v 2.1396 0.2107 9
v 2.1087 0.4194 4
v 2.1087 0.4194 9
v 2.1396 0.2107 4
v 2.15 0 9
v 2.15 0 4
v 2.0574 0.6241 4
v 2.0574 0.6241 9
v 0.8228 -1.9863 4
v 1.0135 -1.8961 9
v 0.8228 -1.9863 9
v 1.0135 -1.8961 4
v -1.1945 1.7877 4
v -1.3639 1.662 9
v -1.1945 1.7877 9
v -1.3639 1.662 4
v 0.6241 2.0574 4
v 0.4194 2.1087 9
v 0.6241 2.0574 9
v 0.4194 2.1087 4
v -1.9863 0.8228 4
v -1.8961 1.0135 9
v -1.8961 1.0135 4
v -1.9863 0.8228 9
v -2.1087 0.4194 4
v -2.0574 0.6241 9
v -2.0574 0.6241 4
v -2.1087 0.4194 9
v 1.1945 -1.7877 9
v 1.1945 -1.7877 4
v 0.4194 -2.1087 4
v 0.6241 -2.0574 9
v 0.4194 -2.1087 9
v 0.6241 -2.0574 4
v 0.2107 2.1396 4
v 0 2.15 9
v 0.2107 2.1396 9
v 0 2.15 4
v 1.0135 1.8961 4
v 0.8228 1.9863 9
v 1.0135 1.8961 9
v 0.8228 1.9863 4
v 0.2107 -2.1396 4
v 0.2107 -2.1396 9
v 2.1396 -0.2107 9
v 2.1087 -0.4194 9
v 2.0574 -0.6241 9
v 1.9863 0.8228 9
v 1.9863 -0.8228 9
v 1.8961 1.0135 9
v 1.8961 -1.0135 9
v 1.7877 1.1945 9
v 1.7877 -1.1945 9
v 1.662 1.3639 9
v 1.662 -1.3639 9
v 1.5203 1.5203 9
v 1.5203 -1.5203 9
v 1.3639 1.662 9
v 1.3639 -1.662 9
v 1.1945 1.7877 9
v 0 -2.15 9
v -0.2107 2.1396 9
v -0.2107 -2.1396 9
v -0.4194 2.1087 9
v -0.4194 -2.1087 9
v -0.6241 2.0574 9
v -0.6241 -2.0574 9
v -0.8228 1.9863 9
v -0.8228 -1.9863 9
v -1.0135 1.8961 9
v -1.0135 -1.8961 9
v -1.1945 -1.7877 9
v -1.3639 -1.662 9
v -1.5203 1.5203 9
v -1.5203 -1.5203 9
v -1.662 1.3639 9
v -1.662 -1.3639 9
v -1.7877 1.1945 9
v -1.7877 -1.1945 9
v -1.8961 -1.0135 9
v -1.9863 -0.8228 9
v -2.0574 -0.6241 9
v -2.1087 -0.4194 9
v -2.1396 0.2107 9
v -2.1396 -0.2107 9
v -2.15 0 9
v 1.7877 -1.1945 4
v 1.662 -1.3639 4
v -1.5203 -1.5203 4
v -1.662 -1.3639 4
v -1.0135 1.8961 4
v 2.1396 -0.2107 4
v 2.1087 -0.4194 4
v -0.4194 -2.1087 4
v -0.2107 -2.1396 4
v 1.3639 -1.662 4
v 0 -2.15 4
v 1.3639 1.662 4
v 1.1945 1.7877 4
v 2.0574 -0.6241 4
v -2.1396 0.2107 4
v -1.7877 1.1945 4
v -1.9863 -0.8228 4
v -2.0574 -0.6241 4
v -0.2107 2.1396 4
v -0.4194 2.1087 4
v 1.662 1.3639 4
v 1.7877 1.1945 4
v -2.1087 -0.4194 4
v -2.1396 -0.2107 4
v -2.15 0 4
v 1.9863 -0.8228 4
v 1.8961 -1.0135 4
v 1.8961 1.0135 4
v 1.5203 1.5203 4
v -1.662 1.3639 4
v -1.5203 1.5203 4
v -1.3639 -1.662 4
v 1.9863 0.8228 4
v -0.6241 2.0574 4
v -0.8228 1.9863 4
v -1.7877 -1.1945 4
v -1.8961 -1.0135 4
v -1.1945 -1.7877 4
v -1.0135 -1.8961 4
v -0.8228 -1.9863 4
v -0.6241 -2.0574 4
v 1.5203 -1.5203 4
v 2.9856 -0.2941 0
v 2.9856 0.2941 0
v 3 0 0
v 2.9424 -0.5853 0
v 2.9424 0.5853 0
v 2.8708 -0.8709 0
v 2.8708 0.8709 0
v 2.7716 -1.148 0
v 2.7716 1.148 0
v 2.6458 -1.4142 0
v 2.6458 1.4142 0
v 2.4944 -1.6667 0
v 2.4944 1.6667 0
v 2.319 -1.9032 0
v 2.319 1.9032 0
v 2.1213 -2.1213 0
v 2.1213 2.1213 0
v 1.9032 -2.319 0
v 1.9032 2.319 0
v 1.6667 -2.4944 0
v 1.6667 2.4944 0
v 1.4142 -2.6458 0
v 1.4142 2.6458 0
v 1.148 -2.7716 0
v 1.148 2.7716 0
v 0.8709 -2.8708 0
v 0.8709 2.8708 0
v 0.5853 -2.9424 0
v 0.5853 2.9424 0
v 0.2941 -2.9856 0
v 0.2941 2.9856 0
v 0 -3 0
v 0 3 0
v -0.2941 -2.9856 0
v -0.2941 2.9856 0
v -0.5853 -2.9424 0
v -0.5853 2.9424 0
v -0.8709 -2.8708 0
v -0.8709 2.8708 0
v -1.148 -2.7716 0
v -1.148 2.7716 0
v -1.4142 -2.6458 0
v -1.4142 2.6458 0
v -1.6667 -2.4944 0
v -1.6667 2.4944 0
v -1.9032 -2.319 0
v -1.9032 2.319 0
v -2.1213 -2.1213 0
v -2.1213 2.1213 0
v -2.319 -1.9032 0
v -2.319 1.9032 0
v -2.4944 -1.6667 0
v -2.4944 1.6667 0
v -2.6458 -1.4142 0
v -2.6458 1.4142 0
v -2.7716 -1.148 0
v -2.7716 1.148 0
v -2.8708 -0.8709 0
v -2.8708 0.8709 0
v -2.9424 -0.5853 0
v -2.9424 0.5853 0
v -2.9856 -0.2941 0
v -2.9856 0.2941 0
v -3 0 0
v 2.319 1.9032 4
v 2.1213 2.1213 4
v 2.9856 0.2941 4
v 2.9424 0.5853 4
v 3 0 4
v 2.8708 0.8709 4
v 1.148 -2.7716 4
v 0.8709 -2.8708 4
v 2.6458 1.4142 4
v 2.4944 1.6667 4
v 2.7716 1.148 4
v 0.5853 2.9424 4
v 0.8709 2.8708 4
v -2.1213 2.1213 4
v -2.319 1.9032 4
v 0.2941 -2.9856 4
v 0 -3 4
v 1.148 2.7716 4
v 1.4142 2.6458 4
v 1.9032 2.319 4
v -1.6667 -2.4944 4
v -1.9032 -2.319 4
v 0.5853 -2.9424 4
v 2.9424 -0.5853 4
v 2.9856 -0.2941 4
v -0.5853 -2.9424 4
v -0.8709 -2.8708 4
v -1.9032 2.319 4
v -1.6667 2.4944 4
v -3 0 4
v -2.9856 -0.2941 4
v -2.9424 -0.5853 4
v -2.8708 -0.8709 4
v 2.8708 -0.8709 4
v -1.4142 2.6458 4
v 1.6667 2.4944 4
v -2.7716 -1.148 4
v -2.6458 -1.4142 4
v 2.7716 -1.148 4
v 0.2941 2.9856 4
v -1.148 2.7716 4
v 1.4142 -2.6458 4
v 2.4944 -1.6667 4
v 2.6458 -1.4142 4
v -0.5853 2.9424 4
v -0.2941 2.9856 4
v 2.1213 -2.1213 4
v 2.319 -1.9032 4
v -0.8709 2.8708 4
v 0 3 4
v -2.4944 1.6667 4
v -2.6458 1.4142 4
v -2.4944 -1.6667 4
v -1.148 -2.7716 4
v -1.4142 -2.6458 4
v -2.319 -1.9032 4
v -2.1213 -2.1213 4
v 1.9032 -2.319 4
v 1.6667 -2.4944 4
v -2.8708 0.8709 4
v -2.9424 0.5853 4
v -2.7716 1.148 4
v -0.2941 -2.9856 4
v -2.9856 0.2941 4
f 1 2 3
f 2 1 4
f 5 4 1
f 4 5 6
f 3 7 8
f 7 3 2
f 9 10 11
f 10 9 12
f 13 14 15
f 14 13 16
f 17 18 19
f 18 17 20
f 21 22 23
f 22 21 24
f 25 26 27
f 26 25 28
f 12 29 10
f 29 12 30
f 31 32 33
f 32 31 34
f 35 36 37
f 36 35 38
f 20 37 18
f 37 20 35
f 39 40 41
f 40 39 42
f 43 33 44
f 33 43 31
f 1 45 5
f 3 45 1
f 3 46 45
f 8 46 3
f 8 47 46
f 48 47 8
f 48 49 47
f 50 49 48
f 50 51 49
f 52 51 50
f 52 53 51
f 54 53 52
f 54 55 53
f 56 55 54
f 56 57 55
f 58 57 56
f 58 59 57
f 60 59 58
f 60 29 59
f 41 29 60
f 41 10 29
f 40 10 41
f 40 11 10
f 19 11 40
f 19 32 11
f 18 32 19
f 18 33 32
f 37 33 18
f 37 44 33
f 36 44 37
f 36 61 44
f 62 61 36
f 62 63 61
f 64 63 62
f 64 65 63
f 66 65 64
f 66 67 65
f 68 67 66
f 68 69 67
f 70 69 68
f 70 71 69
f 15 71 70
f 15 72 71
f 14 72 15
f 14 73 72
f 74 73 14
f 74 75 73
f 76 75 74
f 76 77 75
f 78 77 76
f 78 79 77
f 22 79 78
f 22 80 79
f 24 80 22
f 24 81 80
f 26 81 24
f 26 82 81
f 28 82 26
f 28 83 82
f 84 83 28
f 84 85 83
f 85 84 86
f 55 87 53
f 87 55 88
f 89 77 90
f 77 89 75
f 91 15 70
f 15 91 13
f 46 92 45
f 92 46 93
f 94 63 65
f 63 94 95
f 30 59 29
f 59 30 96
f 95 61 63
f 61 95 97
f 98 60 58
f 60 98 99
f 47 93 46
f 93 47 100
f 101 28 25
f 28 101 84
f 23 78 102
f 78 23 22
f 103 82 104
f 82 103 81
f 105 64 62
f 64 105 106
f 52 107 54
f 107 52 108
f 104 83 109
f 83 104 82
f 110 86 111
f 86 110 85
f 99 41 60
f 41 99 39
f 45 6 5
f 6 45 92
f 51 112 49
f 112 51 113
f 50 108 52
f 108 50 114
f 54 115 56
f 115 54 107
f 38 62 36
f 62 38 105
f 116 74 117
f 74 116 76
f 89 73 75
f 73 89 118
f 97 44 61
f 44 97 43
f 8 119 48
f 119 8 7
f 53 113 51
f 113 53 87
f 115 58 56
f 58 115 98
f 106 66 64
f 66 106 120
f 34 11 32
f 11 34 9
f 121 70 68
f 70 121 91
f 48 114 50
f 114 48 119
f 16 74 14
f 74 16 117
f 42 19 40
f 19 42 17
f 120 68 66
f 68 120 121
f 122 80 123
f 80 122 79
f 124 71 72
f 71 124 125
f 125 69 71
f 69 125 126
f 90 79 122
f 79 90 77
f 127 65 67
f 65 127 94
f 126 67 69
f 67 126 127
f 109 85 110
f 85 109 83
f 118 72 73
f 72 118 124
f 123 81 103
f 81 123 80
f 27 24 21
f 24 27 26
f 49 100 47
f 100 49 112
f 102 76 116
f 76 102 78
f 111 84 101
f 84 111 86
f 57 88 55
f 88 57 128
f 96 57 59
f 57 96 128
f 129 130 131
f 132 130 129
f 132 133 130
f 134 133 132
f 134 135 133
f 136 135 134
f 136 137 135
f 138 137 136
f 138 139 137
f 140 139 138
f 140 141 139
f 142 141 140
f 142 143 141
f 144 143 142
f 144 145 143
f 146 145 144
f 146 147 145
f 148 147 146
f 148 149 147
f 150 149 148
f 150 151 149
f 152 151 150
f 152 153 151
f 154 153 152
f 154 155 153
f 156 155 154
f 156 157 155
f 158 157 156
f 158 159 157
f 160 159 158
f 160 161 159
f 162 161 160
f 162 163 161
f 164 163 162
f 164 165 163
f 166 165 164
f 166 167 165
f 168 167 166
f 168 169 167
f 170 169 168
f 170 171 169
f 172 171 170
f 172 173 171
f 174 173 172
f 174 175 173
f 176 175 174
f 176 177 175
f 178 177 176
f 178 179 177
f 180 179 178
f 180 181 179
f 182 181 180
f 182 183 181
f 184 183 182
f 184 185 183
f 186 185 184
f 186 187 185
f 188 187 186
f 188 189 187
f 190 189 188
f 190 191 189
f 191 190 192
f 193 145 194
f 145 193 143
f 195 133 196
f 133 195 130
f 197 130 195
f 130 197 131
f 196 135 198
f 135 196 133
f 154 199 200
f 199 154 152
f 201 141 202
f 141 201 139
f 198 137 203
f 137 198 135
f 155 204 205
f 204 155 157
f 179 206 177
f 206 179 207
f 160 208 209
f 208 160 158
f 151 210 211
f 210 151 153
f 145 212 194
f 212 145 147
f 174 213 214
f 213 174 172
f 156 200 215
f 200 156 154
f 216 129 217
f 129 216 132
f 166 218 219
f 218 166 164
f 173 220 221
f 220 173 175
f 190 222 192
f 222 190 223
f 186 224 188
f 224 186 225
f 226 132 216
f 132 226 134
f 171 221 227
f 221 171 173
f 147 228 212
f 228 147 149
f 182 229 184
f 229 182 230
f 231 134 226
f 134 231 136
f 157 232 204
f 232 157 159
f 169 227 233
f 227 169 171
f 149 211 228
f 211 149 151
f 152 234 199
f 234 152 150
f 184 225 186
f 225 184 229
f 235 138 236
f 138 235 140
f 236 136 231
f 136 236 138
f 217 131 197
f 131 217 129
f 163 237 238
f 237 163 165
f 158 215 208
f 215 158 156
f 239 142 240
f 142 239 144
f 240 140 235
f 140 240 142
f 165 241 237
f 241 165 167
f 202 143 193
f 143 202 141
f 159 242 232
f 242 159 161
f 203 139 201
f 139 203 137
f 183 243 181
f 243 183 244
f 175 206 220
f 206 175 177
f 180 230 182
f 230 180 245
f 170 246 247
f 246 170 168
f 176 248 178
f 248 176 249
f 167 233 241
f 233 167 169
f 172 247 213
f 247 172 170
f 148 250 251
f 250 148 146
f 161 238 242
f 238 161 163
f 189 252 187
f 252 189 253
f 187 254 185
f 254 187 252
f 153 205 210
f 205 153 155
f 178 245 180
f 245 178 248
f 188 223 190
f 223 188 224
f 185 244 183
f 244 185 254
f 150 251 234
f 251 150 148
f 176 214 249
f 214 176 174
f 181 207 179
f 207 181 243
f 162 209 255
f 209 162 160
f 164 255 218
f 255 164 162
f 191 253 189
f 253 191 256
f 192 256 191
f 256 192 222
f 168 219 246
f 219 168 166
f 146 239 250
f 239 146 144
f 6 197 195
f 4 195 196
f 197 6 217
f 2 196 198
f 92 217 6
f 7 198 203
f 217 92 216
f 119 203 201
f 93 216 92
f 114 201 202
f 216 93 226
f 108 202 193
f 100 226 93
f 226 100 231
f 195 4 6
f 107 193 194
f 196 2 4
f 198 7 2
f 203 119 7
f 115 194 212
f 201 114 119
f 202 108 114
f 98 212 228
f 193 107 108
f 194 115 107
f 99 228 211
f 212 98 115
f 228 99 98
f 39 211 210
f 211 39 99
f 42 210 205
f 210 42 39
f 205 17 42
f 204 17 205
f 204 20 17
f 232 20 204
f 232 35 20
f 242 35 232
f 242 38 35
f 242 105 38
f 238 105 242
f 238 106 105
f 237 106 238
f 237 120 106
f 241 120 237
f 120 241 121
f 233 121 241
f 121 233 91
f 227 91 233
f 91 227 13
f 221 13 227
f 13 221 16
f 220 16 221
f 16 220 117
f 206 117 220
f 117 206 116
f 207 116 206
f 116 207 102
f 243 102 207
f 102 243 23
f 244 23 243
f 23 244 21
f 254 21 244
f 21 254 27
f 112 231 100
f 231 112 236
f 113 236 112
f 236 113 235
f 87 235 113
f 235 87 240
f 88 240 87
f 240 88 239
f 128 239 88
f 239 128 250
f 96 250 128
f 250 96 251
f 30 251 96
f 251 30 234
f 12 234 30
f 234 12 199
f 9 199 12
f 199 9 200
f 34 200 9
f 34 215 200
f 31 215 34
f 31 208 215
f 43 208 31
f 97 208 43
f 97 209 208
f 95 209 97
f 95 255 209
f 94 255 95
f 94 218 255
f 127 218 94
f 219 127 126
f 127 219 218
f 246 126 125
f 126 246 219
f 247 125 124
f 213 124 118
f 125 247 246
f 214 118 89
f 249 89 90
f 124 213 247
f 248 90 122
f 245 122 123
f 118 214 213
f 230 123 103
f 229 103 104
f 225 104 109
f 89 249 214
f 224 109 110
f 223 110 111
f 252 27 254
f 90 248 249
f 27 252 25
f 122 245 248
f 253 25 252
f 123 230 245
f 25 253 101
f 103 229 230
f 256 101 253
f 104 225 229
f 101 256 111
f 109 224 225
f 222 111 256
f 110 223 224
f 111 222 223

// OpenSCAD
$fn = 64;

// --- параметры ---

flange_d = 6;     // диаметр шайбы
flange_h = 4;     // толщина шайбы

stem_d   = 4.3;   // диаметр штока
stem_h   = 5 + flange_h;     // длина штока

// -----------------------------------------------

union() {
    cylinder(h = stem_h, d = stem_d);
    cylinder(h = flange_h, d = flange_d);
}
